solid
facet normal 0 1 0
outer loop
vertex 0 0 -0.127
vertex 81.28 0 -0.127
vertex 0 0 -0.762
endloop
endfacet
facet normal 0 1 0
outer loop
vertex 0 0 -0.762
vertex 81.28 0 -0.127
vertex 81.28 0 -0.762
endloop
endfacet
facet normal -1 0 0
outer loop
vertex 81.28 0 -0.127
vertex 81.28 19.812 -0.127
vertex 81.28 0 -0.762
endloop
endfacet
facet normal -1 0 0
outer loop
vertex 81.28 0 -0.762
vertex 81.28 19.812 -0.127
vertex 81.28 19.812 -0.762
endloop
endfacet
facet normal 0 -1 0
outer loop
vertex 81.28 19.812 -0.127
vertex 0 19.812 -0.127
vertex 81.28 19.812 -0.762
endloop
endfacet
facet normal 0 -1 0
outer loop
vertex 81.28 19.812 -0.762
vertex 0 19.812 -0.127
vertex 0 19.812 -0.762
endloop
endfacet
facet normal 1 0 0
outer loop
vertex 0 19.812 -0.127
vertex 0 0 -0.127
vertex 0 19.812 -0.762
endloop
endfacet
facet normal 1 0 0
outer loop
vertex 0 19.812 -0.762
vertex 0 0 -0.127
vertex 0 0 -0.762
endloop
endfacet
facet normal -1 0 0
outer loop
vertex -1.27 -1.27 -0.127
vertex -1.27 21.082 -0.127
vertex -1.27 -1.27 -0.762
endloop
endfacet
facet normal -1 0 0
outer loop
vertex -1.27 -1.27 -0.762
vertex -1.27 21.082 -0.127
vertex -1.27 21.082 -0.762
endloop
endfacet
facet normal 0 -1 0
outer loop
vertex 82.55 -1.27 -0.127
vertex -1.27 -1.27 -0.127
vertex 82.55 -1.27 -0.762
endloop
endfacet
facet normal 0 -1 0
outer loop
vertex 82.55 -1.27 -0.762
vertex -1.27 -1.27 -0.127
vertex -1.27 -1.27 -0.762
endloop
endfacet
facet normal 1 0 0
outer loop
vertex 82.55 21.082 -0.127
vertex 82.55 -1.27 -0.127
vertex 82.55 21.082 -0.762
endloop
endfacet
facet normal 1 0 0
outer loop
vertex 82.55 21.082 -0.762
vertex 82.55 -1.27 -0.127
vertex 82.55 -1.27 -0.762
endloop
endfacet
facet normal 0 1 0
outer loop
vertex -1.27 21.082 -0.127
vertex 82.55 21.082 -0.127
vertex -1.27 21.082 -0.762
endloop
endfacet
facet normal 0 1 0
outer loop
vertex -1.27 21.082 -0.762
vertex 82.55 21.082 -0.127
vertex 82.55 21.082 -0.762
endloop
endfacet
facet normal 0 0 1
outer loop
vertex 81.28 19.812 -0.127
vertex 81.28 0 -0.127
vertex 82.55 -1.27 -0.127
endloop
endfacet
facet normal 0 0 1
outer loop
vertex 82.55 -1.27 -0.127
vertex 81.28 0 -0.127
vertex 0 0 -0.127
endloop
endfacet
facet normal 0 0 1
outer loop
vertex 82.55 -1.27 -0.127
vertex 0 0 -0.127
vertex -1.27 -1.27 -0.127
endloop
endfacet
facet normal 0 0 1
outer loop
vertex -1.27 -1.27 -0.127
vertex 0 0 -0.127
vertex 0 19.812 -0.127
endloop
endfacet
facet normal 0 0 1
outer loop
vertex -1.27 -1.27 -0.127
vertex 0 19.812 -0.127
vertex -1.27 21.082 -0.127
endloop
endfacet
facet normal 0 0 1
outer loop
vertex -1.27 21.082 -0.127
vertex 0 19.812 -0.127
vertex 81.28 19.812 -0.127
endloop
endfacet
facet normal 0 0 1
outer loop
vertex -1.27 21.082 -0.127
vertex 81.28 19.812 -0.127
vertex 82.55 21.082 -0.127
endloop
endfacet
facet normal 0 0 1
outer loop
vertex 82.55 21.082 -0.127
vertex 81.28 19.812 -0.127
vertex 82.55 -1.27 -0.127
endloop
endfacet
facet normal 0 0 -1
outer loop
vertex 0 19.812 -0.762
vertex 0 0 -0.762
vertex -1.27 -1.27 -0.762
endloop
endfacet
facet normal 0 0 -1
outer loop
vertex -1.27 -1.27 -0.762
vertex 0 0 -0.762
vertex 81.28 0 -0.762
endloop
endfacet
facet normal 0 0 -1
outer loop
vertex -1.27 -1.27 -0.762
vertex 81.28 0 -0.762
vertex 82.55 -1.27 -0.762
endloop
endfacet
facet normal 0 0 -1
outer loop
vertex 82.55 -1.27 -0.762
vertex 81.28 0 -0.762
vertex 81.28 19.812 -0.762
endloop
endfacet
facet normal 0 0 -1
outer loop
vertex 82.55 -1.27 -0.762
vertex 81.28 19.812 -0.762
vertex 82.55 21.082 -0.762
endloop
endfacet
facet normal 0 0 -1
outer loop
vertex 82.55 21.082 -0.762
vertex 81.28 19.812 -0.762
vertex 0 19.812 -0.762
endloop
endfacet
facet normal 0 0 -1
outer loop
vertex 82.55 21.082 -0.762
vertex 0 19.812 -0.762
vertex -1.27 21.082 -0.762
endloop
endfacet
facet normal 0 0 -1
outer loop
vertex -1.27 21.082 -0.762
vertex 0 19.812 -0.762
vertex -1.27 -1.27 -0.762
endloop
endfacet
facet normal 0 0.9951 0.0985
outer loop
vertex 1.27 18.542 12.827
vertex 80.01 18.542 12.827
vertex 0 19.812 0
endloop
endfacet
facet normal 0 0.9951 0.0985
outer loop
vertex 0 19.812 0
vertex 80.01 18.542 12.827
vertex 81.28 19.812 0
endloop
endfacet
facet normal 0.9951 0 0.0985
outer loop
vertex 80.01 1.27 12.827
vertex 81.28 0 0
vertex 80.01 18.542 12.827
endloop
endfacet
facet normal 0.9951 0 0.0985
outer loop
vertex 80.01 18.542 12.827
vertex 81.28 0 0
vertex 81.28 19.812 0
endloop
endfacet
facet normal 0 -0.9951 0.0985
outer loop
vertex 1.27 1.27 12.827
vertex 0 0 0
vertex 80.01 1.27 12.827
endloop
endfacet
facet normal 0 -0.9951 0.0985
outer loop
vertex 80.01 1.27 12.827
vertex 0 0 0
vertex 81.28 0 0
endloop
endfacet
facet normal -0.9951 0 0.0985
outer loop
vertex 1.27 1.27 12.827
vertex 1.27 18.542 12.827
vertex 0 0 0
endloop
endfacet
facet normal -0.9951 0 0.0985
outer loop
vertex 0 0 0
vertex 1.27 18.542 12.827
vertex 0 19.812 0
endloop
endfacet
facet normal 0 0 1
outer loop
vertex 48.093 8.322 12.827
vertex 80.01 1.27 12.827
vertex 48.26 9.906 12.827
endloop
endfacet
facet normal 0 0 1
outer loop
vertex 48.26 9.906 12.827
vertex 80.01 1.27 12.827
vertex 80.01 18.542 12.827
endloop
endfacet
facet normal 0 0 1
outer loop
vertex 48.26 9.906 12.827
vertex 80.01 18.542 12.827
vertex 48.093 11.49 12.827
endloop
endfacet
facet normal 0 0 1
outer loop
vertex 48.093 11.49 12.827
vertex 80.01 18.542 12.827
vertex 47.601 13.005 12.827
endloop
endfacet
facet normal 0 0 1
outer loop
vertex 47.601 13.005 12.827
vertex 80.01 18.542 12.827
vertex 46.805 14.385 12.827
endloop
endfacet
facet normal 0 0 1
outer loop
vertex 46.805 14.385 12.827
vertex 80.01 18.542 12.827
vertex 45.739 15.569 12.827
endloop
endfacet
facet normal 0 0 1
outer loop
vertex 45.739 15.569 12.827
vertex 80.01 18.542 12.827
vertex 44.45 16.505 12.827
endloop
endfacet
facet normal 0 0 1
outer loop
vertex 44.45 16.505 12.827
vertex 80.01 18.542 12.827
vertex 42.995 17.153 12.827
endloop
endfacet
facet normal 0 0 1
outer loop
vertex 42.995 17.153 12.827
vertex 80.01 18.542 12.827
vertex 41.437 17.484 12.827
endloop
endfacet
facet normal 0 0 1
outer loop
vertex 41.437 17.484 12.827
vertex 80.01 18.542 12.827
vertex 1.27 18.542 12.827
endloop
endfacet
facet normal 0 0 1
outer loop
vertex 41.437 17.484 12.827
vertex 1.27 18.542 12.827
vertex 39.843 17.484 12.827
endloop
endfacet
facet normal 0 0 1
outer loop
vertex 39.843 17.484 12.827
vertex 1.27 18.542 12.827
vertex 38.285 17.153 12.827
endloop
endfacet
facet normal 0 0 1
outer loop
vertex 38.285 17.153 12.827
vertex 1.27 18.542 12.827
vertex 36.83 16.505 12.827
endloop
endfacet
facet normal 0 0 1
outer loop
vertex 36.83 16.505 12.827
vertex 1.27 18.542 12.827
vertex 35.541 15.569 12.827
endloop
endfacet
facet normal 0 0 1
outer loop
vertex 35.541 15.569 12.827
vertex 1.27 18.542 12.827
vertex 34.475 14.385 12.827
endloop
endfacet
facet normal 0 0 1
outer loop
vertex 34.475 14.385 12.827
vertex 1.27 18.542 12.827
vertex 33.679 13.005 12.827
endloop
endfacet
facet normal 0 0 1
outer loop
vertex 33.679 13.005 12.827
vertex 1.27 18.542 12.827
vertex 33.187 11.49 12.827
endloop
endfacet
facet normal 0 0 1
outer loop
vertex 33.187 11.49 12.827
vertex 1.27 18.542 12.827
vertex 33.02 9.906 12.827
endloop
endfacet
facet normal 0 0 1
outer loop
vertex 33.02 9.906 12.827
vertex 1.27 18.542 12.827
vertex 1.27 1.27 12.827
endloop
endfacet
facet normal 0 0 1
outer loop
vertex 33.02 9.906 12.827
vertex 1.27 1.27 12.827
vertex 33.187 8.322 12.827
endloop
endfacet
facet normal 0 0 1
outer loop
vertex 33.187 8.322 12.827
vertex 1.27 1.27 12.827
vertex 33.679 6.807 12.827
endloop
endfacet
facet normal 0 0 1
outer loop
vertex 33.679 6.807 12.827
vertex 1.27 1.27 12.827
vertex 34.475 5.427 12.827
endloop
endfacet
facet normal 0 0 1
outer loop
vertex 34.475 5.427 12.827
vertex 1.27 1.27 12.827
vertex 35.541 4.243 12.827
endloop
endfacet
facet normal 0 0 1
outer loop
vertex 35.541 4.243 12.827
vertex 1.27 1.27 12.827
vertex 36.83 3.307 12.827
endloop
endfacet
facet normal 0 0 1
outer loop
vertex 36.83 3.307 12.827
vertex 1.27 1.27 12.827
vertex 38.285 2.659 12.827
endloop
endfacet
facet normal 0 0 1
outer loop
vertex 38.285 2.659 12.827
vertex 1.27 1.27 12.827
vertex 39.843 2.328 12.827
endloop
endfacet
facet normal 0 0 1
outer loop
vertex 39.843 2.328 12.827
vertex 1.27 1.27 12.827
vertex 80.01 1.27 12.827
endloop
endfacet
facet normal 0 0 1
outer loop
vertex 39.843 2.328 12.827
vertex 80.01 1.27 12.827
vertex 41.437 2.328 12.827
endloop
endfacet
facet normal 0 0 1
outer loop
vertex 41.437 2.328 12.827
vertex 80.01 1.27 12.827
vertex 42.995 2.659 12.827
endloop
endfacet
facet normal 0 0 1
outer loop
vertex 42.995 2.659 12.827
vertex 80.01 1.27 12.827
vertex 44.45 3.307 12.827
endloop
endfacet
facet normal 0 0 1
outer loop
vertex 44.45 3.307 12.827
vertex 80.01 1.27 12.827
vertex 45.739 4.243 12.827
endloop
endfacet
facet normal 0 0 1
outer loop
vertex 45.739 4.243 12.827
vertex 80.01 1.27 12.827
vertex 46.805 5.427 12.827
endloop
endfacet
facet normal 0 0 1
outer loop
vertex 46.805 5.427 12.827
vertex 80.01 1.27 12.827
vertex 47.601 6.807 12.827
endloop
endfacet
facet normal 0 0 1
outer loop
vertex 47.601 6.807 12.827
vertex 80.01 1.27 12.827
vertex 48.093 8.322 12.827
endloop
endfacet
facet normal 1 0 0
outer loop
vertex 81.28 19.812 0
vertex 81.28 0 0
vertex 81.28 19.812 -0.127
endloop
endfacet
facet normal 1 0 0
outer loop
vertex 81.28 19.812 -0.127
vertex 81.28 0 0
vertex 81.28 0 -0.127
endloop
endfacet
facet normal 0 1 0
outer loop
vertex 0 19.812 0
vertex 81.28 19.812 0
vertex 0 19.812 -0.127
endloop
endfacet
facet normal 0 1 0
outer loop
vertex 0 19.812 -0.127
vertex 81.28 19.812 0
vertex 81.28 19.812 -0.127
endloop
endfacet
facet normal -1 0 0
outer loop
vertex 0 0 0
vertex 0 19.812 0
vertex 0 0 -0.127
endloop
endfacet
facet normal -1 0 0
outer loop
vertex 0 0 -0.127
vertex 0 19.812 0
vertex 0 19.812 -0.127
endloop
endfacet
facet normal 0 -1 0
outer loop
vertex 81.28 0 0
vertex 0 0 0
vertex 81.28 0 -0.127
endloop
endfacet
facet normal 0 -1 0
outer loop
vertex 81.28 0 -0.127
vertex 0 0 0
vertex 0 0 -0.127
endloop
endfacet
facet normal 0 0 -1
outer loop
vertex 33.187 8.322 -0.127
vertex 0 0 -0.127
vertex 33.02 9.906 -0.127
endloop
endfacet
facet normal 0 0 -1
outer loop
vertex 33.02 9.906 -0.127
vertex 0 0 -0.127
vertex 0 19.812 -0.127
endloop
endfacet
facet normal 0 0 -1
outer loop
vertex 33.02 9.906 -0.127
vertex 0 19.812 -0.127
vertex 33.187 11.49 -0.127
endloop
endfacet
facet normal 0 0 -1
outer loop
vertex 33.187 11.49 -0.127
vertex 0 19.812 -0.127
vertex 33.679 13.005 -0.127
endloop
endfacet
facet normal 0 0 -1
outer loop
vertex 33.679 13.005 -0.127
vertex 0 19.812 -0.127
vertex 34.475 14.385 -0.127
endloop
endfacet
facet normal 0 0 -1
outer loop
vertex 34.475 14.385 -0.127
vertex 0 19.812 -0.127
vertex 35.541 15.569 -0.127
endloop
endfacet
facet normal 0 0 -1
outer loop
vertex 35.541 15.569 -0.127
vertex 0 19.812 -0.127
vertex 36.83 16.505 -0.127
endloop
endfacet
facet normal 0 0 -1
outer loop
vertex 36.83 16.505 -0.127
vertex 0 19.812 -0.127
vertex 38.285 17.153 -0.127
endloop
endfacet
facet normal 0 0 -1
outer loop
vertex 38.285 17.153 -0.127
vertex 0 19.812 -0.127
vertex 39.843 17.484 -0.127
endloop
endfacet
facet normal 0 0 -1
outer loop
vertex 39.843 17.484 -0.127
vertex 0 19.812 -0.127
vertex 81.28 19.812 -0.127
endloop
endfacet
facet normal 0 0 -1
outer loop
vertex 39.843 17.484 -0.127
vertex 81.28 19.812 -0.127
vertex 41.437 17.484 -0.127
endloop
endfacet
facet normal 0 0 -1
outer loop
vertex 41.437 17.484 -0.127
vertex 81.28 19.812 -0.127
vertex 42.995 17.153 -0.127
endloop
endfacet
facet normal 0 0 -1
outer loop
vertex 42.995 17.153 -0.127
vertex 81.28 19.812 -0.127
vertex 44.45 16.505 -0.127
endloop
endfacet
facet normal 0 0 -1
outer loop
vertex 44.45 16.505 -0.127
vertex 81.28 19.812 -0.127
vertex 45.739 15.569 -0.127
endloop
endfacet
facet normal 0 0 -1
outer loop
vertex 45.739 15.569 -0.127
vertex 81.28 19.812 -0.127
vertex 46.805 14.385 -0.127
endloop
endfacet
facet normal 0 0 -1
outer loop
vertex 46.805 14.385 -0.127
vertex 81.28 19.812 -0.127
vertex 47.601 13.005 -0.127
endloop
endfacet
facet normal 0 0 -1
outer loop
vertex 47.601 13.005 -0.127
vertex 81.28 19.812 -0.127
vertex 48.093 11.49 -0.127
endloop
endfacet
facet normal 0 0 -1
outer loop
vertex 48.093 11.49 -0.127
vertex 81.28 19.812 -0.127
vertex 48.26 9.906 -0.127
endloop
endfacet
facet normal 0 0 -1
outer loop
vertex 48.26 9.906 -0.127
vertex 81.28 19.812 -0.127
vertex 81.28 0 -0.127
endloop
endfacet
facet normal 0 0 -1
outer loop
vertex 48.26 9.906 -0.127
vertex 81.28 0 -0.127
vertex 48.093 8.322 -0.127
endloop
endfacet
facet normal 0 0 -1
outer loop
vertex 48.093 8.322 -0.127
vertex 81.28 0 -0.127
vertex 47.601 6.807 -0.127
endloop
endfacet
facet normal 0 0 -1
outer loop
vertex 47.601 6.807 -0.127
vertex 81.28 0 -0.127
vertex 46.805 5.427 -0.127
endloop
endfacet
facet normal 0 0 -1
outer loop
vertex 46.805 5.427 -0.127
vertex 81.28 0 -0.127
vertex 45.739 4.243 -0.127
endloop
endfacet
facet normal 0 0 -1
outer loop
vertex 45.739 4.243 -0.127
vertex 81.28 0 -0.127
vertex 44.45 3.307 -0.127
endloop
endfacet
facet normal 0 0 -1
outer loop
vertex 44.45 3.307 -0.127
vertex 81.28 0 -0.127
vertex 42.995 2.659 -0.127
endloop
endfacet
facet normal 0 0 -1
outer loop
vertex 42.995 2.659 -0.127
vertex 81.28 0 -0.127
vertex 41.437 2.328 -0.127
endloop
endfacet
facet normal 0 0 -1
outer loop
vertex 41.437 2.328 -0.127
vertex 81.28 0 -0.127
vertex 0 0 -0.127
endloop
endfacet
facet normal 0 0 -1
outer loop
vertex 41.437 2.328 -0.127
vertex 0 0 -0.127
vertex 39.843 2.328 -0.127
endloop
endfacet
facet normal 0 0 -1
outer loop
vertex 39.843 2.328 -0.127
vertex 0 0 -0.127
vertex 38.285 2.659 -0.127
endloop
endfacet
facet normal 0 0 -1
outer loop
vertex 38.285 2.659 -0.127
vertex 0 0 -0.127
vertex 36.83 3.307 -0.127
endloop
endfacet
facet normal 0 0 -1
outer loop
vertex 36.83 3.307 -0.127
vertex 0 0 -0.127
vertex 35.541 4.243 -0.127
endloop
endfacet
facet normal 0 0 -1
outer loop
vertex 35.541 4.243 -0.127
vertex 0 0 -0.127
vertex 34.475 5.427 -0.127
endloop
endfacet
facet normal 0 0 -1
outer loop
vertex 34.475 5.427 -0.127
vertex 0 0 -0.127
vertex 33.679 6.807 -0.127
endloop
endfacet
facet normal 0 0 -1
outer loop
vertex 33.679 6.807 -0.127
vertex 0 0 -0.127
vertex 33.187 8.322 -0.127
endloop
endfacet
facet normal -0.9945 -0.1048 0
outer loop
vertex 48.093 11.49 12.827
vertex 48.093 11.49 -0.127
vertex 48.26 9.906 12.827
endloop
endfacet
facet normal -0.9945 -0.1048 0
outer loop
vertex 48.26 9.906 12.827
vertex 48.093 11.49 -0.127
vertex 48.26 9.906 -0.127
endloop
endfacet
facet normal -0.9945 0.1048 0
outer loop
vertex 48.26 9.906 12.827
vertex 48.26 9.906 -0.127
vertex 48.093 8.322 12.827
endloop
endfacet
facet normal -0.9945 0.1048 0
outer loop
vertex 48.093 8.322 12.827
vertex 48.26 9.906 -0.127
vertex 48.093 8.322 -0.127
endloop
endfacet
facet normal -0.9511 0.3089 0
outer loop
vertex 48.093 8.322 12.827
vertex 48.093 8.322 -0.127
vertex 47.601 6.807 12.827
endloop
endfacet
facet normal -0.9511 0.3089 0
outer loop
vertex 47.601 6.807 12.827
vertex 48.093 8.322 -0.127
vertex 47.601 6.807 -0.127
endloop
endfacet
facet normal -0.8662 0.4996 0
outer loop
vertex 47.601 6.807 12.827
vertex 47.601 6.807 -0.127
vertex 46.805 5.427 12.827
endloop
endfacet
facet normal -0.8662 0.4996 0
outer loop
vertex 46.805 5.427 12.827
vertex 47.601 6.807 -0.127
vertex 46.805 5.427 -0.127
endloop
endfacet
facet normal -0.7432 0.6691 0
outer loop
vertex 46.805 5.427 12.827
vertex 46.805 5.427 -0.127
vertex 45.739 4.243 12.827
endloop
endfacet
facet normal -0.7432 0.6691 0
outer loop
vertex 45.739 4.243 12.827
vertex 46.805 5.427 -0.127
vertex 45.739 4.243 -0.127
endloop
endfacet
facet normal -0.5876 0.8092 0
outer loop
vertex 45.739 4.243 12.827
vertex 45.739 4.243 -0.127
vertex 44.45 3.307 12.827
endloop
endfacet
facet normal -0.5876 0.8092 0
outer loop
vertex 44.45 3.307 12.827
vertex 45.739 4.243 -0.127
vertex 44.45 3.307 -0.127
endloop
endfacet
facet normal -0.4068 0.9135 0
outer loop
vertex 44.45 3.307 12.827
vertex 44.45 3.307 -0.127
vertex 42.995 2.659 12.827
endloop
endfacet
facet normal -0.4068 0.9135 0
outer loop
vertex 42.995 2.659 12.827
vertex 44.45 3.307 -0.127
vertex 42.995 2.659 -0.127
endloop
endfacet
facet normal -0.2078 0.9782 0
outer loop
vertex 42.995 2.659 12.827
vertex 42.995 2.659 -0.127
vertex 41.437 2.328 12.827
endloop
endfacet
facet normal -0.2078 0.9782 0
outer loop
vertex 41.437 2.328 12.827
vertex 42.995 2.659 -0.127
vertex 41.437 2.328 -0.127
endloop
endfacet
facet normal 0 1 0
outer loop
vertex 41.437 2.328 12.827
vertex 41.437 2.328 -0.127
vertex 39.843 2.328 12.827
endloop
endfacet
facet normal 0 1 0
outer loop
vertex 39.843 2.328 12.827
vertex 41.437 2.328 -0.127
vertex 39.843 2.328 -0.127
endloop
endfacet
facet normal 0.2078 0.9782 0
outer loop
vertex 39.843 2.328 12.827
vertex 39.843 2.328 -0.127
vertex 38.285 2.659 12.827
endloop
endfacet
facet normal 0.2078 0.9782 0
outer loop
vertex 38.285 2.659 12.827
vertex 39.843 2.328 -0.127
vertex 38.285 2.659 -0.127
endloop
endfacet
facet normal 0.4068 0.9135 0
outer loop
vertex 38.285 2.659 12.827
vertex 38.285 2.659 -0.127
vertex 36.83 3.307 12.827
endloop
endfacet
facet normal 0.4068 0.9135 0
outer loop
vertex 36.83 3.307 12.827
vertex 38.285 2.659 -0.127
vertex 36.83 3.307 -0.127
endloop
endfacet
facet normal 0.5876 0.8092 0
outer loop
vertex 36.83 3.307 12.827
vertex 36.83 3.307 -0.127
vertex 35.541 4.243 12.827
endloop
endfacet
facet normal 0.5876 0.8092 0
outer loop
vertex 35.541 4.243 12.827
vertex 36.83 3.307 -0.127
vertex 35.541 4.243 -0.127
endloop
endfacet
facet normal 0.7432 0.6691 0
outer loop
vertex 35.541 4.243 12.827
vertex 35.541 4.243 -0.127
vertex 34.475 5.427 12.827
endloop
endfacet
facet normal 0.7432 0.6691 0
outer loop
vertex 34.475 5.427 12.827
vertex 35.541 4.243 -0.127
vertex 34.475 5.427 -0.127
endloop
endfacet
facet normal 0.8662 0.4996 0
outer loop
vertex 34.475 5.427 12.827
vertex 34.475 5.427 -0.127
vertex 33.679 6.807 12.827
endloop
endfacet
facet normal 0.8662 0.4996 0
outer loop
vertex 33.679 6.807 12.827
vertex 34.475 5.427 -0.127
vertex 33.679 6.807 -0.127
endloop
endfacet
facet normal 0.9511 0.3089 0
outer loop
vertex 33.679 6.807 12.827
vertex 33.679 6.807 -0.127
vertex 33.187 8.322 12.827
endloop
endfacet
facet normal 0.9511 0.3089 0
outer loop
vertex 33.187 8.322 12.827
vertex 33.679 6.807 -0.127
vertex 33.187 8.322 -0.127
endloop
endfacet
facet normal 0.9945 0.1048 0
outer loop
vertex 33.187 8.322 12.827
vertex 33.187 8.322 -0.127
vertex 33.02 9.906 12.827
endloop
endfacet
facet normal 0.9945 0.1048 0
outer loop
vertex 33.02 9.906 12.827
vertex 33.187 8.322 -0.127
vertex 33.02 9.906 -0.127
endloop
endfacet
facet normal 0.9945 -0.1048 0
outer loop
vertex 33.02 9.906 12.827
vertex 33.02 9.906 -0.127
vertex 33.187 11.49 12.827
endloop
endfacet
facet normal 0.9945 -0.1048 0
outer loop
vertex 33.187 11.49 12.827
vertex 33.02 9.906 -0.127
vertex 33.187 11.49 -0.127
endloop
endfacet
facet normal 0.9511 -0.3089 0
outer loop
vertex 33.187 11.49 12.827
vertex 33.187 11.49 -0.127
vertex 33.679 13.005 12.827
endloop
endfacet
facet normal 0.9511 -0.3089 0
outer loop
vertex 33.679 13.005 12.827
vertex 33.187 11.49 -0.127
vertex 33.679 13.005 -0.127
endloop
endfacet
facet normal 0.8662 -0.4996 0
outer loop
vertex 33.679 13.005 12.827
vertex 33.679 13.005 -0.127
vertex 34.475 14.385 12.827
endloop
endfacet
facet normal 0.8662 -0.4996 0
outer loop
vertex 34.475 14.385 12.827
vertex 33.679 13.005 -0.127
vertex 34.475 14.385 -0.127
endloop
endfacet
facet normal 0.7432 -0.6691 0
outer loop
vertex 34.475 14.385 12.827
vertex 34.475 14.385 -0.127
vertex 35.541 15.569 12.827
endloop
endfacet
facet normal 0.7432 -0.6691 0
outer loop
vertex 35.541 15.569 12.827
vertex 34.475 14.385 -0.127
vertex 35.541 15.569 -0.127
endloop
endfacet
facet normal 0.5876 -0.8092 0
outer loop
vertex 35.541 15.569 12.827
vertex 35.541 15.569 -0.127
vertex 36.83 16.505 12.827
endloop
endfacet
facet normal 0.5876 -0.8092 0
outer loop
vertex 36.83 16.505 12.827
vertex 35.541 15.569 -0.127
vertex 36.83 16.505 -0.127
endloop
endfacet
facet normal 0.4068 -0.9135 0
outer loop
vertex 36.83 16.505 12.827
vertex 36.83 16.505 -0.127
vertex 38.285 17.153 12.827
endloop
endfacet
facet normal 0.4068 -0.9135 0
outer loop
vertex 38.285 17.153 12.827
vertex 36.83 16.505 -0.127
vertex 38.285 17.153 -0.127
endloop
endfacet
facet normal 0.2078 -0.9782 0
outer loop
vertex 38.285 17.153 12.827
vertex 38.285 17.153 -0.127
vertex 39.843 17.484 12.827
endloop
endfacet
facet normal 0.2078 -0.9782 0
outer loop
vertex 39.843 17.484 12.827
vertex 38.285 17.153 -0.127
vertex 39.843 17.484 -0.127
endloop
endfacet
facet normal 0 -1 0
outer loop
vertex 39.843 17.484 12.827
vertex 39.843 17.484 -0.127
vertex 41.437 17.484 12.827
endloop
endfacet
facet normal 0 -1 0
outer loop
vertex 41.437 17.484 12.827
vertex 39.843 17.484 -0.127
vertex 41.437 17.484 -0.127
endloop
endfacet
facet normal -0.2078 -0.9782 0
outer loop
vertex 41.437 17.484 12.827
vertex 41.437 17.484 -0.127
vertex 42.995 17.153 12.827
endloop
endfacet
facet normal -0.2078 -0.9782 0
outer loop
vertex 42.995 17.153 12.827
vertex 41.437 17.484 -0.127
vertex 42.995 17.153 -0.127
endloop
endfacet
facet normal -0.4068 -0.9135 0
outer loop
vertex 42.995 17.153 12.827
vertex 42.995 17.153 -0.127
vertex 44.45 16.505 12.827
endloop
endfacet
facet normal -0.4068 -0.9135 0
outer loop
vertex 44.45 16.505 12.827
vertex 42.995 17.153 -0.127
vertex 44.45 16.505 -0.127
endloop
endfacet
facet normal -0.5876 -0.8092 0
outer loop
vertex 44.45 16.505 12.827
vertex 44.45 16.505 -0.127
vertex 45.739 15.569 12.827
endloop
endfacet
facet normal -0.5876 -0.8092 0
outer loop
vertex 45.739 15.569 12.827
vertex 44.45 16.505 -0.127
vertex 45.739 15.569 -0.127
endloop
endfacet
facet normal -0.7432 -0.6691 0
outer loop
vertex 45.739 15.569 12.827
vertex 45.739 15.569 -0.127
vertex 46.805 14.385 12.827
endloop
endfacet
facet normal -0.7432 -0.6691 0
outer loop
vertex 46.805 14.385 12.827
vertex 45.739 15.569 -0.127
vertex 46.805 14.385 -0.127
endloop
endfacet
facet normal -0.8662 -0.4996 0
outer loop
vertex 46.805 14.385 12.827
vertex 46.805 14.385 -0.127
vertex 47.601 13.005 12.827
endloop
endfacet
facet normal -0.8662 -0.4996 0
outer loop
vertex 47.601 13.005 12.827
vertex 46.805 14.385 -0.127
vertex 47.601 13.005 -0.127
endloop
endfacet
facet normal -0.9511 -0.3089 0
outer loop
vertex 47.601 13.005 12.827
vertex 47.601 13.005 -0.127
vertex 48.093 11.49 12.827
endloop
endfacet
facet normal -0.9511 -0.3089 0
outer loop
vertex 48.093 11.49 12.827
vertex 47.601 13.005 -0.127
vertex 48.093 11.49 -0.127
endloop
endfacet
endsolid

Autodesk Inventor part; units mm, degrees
ref_plane "YZ Plane" through (0, 0, 0) normal (1, 0, 0) x (0, 1, 0)
ref_plane "XZ Plane" through (0, 0, 0) normal (0, 1, 0) x (-1, 0, 0)
sketch "Sketch1" plane through (0, 0, 0) normal (0, 0, 1) x (1, 0, 0)
  line L0 (0, 0) -> (81.28, 0)
  line L1 (81.28, 0) -> (81.28, 19.812)
  line L2 (81.28, 19.812) -> (0, 19.812)
  line L3 (0, 19.812) -> (0, 0)
  dimension "d0" = 81.28
  dimension "d1" = 19.812
extrude "Extrusion1" add sketch "Sketch1" against normal blind 0.127
ref_plane "Work Plane1" through (0, 0, 12.7) normal (0, 0, 1) x (1, 0, 0)
sketch "Sketch2" plane through (0, 0, 12.7) normal (0, 0, 1) x (1, 0, 0)
  line L0 (0, 0) -> (81.28, 0) projected
  line L1 (81.28, 0) -> (81.28, 19.812) projected
  line L2 (81.28, 19.812) -> (0, 19.812) projected
  line L3 (0, 19.812) -> (0, 0) projected
  line L4 (1.27, 18.542) -> (80.01, 18.542)
  line L5 (80.01, 18.542) -> (80.01, 1.27)
  line L6 (80.01, 1.27) -> (1.27, 1.27)
  line L7 (1.27, 1.27) -> (1.27, 18.542)
  dimension "d5" = 1.27
extrude "Extrusion2" add sketch "Sketch2" along normal blind 0.127 contours L4 L5 L6 L7
loft "Loft1" add section 1 edges at (40.64, 18.542, 12.827) (1.27, 9.906, 12.827) (40.64, 1.27, 12.827) (80.01, 9.906, 12.827) section 2 edges at (40.64, 0, 0) (81.28, 9.906, 0) (40.64, 19.812, 0) (0, 9.906, 0)
sketch "Sketch3" plane through (0, 0, -0.127) normal (0, 0, -1) x (-1, 0, 0)
  line L0 (0, 19.812) -> (-81.28, 19.812) projected
  line L1 (0, 0) -> (0, 19.812) projected
  line L2 (-81.28, 0) -> (0, 0) projected
  line L3 (-81.28, 19.812) -> (-81.28, 0) projected
  line L4 (-82.55, 21.082) -> (1.27, 21.082)
  line L5 (1.27, 21.082) -> (1.27, -1.27)
  line L6 (1.27, -1.27) -> (-82.55, -1.27)
  line L7 (-82.55, -1.27) -> (-82.55, 21.082)
  circle A0 centre (-40.64, 9.906) radius 7.62
  dimension "d12" = 1.27
  dimension "d15" = 15.24
extrude "Extrusion3" add sketch "Sketch3" along normal blind 0.635 contours L4 L5 L6 L7
hole "Hole1" at (40.64, 9.906, -0.127) direction (0, 0, 1) diameter 15.24 end through all
properties part number "doorlatchkeeperopener"
